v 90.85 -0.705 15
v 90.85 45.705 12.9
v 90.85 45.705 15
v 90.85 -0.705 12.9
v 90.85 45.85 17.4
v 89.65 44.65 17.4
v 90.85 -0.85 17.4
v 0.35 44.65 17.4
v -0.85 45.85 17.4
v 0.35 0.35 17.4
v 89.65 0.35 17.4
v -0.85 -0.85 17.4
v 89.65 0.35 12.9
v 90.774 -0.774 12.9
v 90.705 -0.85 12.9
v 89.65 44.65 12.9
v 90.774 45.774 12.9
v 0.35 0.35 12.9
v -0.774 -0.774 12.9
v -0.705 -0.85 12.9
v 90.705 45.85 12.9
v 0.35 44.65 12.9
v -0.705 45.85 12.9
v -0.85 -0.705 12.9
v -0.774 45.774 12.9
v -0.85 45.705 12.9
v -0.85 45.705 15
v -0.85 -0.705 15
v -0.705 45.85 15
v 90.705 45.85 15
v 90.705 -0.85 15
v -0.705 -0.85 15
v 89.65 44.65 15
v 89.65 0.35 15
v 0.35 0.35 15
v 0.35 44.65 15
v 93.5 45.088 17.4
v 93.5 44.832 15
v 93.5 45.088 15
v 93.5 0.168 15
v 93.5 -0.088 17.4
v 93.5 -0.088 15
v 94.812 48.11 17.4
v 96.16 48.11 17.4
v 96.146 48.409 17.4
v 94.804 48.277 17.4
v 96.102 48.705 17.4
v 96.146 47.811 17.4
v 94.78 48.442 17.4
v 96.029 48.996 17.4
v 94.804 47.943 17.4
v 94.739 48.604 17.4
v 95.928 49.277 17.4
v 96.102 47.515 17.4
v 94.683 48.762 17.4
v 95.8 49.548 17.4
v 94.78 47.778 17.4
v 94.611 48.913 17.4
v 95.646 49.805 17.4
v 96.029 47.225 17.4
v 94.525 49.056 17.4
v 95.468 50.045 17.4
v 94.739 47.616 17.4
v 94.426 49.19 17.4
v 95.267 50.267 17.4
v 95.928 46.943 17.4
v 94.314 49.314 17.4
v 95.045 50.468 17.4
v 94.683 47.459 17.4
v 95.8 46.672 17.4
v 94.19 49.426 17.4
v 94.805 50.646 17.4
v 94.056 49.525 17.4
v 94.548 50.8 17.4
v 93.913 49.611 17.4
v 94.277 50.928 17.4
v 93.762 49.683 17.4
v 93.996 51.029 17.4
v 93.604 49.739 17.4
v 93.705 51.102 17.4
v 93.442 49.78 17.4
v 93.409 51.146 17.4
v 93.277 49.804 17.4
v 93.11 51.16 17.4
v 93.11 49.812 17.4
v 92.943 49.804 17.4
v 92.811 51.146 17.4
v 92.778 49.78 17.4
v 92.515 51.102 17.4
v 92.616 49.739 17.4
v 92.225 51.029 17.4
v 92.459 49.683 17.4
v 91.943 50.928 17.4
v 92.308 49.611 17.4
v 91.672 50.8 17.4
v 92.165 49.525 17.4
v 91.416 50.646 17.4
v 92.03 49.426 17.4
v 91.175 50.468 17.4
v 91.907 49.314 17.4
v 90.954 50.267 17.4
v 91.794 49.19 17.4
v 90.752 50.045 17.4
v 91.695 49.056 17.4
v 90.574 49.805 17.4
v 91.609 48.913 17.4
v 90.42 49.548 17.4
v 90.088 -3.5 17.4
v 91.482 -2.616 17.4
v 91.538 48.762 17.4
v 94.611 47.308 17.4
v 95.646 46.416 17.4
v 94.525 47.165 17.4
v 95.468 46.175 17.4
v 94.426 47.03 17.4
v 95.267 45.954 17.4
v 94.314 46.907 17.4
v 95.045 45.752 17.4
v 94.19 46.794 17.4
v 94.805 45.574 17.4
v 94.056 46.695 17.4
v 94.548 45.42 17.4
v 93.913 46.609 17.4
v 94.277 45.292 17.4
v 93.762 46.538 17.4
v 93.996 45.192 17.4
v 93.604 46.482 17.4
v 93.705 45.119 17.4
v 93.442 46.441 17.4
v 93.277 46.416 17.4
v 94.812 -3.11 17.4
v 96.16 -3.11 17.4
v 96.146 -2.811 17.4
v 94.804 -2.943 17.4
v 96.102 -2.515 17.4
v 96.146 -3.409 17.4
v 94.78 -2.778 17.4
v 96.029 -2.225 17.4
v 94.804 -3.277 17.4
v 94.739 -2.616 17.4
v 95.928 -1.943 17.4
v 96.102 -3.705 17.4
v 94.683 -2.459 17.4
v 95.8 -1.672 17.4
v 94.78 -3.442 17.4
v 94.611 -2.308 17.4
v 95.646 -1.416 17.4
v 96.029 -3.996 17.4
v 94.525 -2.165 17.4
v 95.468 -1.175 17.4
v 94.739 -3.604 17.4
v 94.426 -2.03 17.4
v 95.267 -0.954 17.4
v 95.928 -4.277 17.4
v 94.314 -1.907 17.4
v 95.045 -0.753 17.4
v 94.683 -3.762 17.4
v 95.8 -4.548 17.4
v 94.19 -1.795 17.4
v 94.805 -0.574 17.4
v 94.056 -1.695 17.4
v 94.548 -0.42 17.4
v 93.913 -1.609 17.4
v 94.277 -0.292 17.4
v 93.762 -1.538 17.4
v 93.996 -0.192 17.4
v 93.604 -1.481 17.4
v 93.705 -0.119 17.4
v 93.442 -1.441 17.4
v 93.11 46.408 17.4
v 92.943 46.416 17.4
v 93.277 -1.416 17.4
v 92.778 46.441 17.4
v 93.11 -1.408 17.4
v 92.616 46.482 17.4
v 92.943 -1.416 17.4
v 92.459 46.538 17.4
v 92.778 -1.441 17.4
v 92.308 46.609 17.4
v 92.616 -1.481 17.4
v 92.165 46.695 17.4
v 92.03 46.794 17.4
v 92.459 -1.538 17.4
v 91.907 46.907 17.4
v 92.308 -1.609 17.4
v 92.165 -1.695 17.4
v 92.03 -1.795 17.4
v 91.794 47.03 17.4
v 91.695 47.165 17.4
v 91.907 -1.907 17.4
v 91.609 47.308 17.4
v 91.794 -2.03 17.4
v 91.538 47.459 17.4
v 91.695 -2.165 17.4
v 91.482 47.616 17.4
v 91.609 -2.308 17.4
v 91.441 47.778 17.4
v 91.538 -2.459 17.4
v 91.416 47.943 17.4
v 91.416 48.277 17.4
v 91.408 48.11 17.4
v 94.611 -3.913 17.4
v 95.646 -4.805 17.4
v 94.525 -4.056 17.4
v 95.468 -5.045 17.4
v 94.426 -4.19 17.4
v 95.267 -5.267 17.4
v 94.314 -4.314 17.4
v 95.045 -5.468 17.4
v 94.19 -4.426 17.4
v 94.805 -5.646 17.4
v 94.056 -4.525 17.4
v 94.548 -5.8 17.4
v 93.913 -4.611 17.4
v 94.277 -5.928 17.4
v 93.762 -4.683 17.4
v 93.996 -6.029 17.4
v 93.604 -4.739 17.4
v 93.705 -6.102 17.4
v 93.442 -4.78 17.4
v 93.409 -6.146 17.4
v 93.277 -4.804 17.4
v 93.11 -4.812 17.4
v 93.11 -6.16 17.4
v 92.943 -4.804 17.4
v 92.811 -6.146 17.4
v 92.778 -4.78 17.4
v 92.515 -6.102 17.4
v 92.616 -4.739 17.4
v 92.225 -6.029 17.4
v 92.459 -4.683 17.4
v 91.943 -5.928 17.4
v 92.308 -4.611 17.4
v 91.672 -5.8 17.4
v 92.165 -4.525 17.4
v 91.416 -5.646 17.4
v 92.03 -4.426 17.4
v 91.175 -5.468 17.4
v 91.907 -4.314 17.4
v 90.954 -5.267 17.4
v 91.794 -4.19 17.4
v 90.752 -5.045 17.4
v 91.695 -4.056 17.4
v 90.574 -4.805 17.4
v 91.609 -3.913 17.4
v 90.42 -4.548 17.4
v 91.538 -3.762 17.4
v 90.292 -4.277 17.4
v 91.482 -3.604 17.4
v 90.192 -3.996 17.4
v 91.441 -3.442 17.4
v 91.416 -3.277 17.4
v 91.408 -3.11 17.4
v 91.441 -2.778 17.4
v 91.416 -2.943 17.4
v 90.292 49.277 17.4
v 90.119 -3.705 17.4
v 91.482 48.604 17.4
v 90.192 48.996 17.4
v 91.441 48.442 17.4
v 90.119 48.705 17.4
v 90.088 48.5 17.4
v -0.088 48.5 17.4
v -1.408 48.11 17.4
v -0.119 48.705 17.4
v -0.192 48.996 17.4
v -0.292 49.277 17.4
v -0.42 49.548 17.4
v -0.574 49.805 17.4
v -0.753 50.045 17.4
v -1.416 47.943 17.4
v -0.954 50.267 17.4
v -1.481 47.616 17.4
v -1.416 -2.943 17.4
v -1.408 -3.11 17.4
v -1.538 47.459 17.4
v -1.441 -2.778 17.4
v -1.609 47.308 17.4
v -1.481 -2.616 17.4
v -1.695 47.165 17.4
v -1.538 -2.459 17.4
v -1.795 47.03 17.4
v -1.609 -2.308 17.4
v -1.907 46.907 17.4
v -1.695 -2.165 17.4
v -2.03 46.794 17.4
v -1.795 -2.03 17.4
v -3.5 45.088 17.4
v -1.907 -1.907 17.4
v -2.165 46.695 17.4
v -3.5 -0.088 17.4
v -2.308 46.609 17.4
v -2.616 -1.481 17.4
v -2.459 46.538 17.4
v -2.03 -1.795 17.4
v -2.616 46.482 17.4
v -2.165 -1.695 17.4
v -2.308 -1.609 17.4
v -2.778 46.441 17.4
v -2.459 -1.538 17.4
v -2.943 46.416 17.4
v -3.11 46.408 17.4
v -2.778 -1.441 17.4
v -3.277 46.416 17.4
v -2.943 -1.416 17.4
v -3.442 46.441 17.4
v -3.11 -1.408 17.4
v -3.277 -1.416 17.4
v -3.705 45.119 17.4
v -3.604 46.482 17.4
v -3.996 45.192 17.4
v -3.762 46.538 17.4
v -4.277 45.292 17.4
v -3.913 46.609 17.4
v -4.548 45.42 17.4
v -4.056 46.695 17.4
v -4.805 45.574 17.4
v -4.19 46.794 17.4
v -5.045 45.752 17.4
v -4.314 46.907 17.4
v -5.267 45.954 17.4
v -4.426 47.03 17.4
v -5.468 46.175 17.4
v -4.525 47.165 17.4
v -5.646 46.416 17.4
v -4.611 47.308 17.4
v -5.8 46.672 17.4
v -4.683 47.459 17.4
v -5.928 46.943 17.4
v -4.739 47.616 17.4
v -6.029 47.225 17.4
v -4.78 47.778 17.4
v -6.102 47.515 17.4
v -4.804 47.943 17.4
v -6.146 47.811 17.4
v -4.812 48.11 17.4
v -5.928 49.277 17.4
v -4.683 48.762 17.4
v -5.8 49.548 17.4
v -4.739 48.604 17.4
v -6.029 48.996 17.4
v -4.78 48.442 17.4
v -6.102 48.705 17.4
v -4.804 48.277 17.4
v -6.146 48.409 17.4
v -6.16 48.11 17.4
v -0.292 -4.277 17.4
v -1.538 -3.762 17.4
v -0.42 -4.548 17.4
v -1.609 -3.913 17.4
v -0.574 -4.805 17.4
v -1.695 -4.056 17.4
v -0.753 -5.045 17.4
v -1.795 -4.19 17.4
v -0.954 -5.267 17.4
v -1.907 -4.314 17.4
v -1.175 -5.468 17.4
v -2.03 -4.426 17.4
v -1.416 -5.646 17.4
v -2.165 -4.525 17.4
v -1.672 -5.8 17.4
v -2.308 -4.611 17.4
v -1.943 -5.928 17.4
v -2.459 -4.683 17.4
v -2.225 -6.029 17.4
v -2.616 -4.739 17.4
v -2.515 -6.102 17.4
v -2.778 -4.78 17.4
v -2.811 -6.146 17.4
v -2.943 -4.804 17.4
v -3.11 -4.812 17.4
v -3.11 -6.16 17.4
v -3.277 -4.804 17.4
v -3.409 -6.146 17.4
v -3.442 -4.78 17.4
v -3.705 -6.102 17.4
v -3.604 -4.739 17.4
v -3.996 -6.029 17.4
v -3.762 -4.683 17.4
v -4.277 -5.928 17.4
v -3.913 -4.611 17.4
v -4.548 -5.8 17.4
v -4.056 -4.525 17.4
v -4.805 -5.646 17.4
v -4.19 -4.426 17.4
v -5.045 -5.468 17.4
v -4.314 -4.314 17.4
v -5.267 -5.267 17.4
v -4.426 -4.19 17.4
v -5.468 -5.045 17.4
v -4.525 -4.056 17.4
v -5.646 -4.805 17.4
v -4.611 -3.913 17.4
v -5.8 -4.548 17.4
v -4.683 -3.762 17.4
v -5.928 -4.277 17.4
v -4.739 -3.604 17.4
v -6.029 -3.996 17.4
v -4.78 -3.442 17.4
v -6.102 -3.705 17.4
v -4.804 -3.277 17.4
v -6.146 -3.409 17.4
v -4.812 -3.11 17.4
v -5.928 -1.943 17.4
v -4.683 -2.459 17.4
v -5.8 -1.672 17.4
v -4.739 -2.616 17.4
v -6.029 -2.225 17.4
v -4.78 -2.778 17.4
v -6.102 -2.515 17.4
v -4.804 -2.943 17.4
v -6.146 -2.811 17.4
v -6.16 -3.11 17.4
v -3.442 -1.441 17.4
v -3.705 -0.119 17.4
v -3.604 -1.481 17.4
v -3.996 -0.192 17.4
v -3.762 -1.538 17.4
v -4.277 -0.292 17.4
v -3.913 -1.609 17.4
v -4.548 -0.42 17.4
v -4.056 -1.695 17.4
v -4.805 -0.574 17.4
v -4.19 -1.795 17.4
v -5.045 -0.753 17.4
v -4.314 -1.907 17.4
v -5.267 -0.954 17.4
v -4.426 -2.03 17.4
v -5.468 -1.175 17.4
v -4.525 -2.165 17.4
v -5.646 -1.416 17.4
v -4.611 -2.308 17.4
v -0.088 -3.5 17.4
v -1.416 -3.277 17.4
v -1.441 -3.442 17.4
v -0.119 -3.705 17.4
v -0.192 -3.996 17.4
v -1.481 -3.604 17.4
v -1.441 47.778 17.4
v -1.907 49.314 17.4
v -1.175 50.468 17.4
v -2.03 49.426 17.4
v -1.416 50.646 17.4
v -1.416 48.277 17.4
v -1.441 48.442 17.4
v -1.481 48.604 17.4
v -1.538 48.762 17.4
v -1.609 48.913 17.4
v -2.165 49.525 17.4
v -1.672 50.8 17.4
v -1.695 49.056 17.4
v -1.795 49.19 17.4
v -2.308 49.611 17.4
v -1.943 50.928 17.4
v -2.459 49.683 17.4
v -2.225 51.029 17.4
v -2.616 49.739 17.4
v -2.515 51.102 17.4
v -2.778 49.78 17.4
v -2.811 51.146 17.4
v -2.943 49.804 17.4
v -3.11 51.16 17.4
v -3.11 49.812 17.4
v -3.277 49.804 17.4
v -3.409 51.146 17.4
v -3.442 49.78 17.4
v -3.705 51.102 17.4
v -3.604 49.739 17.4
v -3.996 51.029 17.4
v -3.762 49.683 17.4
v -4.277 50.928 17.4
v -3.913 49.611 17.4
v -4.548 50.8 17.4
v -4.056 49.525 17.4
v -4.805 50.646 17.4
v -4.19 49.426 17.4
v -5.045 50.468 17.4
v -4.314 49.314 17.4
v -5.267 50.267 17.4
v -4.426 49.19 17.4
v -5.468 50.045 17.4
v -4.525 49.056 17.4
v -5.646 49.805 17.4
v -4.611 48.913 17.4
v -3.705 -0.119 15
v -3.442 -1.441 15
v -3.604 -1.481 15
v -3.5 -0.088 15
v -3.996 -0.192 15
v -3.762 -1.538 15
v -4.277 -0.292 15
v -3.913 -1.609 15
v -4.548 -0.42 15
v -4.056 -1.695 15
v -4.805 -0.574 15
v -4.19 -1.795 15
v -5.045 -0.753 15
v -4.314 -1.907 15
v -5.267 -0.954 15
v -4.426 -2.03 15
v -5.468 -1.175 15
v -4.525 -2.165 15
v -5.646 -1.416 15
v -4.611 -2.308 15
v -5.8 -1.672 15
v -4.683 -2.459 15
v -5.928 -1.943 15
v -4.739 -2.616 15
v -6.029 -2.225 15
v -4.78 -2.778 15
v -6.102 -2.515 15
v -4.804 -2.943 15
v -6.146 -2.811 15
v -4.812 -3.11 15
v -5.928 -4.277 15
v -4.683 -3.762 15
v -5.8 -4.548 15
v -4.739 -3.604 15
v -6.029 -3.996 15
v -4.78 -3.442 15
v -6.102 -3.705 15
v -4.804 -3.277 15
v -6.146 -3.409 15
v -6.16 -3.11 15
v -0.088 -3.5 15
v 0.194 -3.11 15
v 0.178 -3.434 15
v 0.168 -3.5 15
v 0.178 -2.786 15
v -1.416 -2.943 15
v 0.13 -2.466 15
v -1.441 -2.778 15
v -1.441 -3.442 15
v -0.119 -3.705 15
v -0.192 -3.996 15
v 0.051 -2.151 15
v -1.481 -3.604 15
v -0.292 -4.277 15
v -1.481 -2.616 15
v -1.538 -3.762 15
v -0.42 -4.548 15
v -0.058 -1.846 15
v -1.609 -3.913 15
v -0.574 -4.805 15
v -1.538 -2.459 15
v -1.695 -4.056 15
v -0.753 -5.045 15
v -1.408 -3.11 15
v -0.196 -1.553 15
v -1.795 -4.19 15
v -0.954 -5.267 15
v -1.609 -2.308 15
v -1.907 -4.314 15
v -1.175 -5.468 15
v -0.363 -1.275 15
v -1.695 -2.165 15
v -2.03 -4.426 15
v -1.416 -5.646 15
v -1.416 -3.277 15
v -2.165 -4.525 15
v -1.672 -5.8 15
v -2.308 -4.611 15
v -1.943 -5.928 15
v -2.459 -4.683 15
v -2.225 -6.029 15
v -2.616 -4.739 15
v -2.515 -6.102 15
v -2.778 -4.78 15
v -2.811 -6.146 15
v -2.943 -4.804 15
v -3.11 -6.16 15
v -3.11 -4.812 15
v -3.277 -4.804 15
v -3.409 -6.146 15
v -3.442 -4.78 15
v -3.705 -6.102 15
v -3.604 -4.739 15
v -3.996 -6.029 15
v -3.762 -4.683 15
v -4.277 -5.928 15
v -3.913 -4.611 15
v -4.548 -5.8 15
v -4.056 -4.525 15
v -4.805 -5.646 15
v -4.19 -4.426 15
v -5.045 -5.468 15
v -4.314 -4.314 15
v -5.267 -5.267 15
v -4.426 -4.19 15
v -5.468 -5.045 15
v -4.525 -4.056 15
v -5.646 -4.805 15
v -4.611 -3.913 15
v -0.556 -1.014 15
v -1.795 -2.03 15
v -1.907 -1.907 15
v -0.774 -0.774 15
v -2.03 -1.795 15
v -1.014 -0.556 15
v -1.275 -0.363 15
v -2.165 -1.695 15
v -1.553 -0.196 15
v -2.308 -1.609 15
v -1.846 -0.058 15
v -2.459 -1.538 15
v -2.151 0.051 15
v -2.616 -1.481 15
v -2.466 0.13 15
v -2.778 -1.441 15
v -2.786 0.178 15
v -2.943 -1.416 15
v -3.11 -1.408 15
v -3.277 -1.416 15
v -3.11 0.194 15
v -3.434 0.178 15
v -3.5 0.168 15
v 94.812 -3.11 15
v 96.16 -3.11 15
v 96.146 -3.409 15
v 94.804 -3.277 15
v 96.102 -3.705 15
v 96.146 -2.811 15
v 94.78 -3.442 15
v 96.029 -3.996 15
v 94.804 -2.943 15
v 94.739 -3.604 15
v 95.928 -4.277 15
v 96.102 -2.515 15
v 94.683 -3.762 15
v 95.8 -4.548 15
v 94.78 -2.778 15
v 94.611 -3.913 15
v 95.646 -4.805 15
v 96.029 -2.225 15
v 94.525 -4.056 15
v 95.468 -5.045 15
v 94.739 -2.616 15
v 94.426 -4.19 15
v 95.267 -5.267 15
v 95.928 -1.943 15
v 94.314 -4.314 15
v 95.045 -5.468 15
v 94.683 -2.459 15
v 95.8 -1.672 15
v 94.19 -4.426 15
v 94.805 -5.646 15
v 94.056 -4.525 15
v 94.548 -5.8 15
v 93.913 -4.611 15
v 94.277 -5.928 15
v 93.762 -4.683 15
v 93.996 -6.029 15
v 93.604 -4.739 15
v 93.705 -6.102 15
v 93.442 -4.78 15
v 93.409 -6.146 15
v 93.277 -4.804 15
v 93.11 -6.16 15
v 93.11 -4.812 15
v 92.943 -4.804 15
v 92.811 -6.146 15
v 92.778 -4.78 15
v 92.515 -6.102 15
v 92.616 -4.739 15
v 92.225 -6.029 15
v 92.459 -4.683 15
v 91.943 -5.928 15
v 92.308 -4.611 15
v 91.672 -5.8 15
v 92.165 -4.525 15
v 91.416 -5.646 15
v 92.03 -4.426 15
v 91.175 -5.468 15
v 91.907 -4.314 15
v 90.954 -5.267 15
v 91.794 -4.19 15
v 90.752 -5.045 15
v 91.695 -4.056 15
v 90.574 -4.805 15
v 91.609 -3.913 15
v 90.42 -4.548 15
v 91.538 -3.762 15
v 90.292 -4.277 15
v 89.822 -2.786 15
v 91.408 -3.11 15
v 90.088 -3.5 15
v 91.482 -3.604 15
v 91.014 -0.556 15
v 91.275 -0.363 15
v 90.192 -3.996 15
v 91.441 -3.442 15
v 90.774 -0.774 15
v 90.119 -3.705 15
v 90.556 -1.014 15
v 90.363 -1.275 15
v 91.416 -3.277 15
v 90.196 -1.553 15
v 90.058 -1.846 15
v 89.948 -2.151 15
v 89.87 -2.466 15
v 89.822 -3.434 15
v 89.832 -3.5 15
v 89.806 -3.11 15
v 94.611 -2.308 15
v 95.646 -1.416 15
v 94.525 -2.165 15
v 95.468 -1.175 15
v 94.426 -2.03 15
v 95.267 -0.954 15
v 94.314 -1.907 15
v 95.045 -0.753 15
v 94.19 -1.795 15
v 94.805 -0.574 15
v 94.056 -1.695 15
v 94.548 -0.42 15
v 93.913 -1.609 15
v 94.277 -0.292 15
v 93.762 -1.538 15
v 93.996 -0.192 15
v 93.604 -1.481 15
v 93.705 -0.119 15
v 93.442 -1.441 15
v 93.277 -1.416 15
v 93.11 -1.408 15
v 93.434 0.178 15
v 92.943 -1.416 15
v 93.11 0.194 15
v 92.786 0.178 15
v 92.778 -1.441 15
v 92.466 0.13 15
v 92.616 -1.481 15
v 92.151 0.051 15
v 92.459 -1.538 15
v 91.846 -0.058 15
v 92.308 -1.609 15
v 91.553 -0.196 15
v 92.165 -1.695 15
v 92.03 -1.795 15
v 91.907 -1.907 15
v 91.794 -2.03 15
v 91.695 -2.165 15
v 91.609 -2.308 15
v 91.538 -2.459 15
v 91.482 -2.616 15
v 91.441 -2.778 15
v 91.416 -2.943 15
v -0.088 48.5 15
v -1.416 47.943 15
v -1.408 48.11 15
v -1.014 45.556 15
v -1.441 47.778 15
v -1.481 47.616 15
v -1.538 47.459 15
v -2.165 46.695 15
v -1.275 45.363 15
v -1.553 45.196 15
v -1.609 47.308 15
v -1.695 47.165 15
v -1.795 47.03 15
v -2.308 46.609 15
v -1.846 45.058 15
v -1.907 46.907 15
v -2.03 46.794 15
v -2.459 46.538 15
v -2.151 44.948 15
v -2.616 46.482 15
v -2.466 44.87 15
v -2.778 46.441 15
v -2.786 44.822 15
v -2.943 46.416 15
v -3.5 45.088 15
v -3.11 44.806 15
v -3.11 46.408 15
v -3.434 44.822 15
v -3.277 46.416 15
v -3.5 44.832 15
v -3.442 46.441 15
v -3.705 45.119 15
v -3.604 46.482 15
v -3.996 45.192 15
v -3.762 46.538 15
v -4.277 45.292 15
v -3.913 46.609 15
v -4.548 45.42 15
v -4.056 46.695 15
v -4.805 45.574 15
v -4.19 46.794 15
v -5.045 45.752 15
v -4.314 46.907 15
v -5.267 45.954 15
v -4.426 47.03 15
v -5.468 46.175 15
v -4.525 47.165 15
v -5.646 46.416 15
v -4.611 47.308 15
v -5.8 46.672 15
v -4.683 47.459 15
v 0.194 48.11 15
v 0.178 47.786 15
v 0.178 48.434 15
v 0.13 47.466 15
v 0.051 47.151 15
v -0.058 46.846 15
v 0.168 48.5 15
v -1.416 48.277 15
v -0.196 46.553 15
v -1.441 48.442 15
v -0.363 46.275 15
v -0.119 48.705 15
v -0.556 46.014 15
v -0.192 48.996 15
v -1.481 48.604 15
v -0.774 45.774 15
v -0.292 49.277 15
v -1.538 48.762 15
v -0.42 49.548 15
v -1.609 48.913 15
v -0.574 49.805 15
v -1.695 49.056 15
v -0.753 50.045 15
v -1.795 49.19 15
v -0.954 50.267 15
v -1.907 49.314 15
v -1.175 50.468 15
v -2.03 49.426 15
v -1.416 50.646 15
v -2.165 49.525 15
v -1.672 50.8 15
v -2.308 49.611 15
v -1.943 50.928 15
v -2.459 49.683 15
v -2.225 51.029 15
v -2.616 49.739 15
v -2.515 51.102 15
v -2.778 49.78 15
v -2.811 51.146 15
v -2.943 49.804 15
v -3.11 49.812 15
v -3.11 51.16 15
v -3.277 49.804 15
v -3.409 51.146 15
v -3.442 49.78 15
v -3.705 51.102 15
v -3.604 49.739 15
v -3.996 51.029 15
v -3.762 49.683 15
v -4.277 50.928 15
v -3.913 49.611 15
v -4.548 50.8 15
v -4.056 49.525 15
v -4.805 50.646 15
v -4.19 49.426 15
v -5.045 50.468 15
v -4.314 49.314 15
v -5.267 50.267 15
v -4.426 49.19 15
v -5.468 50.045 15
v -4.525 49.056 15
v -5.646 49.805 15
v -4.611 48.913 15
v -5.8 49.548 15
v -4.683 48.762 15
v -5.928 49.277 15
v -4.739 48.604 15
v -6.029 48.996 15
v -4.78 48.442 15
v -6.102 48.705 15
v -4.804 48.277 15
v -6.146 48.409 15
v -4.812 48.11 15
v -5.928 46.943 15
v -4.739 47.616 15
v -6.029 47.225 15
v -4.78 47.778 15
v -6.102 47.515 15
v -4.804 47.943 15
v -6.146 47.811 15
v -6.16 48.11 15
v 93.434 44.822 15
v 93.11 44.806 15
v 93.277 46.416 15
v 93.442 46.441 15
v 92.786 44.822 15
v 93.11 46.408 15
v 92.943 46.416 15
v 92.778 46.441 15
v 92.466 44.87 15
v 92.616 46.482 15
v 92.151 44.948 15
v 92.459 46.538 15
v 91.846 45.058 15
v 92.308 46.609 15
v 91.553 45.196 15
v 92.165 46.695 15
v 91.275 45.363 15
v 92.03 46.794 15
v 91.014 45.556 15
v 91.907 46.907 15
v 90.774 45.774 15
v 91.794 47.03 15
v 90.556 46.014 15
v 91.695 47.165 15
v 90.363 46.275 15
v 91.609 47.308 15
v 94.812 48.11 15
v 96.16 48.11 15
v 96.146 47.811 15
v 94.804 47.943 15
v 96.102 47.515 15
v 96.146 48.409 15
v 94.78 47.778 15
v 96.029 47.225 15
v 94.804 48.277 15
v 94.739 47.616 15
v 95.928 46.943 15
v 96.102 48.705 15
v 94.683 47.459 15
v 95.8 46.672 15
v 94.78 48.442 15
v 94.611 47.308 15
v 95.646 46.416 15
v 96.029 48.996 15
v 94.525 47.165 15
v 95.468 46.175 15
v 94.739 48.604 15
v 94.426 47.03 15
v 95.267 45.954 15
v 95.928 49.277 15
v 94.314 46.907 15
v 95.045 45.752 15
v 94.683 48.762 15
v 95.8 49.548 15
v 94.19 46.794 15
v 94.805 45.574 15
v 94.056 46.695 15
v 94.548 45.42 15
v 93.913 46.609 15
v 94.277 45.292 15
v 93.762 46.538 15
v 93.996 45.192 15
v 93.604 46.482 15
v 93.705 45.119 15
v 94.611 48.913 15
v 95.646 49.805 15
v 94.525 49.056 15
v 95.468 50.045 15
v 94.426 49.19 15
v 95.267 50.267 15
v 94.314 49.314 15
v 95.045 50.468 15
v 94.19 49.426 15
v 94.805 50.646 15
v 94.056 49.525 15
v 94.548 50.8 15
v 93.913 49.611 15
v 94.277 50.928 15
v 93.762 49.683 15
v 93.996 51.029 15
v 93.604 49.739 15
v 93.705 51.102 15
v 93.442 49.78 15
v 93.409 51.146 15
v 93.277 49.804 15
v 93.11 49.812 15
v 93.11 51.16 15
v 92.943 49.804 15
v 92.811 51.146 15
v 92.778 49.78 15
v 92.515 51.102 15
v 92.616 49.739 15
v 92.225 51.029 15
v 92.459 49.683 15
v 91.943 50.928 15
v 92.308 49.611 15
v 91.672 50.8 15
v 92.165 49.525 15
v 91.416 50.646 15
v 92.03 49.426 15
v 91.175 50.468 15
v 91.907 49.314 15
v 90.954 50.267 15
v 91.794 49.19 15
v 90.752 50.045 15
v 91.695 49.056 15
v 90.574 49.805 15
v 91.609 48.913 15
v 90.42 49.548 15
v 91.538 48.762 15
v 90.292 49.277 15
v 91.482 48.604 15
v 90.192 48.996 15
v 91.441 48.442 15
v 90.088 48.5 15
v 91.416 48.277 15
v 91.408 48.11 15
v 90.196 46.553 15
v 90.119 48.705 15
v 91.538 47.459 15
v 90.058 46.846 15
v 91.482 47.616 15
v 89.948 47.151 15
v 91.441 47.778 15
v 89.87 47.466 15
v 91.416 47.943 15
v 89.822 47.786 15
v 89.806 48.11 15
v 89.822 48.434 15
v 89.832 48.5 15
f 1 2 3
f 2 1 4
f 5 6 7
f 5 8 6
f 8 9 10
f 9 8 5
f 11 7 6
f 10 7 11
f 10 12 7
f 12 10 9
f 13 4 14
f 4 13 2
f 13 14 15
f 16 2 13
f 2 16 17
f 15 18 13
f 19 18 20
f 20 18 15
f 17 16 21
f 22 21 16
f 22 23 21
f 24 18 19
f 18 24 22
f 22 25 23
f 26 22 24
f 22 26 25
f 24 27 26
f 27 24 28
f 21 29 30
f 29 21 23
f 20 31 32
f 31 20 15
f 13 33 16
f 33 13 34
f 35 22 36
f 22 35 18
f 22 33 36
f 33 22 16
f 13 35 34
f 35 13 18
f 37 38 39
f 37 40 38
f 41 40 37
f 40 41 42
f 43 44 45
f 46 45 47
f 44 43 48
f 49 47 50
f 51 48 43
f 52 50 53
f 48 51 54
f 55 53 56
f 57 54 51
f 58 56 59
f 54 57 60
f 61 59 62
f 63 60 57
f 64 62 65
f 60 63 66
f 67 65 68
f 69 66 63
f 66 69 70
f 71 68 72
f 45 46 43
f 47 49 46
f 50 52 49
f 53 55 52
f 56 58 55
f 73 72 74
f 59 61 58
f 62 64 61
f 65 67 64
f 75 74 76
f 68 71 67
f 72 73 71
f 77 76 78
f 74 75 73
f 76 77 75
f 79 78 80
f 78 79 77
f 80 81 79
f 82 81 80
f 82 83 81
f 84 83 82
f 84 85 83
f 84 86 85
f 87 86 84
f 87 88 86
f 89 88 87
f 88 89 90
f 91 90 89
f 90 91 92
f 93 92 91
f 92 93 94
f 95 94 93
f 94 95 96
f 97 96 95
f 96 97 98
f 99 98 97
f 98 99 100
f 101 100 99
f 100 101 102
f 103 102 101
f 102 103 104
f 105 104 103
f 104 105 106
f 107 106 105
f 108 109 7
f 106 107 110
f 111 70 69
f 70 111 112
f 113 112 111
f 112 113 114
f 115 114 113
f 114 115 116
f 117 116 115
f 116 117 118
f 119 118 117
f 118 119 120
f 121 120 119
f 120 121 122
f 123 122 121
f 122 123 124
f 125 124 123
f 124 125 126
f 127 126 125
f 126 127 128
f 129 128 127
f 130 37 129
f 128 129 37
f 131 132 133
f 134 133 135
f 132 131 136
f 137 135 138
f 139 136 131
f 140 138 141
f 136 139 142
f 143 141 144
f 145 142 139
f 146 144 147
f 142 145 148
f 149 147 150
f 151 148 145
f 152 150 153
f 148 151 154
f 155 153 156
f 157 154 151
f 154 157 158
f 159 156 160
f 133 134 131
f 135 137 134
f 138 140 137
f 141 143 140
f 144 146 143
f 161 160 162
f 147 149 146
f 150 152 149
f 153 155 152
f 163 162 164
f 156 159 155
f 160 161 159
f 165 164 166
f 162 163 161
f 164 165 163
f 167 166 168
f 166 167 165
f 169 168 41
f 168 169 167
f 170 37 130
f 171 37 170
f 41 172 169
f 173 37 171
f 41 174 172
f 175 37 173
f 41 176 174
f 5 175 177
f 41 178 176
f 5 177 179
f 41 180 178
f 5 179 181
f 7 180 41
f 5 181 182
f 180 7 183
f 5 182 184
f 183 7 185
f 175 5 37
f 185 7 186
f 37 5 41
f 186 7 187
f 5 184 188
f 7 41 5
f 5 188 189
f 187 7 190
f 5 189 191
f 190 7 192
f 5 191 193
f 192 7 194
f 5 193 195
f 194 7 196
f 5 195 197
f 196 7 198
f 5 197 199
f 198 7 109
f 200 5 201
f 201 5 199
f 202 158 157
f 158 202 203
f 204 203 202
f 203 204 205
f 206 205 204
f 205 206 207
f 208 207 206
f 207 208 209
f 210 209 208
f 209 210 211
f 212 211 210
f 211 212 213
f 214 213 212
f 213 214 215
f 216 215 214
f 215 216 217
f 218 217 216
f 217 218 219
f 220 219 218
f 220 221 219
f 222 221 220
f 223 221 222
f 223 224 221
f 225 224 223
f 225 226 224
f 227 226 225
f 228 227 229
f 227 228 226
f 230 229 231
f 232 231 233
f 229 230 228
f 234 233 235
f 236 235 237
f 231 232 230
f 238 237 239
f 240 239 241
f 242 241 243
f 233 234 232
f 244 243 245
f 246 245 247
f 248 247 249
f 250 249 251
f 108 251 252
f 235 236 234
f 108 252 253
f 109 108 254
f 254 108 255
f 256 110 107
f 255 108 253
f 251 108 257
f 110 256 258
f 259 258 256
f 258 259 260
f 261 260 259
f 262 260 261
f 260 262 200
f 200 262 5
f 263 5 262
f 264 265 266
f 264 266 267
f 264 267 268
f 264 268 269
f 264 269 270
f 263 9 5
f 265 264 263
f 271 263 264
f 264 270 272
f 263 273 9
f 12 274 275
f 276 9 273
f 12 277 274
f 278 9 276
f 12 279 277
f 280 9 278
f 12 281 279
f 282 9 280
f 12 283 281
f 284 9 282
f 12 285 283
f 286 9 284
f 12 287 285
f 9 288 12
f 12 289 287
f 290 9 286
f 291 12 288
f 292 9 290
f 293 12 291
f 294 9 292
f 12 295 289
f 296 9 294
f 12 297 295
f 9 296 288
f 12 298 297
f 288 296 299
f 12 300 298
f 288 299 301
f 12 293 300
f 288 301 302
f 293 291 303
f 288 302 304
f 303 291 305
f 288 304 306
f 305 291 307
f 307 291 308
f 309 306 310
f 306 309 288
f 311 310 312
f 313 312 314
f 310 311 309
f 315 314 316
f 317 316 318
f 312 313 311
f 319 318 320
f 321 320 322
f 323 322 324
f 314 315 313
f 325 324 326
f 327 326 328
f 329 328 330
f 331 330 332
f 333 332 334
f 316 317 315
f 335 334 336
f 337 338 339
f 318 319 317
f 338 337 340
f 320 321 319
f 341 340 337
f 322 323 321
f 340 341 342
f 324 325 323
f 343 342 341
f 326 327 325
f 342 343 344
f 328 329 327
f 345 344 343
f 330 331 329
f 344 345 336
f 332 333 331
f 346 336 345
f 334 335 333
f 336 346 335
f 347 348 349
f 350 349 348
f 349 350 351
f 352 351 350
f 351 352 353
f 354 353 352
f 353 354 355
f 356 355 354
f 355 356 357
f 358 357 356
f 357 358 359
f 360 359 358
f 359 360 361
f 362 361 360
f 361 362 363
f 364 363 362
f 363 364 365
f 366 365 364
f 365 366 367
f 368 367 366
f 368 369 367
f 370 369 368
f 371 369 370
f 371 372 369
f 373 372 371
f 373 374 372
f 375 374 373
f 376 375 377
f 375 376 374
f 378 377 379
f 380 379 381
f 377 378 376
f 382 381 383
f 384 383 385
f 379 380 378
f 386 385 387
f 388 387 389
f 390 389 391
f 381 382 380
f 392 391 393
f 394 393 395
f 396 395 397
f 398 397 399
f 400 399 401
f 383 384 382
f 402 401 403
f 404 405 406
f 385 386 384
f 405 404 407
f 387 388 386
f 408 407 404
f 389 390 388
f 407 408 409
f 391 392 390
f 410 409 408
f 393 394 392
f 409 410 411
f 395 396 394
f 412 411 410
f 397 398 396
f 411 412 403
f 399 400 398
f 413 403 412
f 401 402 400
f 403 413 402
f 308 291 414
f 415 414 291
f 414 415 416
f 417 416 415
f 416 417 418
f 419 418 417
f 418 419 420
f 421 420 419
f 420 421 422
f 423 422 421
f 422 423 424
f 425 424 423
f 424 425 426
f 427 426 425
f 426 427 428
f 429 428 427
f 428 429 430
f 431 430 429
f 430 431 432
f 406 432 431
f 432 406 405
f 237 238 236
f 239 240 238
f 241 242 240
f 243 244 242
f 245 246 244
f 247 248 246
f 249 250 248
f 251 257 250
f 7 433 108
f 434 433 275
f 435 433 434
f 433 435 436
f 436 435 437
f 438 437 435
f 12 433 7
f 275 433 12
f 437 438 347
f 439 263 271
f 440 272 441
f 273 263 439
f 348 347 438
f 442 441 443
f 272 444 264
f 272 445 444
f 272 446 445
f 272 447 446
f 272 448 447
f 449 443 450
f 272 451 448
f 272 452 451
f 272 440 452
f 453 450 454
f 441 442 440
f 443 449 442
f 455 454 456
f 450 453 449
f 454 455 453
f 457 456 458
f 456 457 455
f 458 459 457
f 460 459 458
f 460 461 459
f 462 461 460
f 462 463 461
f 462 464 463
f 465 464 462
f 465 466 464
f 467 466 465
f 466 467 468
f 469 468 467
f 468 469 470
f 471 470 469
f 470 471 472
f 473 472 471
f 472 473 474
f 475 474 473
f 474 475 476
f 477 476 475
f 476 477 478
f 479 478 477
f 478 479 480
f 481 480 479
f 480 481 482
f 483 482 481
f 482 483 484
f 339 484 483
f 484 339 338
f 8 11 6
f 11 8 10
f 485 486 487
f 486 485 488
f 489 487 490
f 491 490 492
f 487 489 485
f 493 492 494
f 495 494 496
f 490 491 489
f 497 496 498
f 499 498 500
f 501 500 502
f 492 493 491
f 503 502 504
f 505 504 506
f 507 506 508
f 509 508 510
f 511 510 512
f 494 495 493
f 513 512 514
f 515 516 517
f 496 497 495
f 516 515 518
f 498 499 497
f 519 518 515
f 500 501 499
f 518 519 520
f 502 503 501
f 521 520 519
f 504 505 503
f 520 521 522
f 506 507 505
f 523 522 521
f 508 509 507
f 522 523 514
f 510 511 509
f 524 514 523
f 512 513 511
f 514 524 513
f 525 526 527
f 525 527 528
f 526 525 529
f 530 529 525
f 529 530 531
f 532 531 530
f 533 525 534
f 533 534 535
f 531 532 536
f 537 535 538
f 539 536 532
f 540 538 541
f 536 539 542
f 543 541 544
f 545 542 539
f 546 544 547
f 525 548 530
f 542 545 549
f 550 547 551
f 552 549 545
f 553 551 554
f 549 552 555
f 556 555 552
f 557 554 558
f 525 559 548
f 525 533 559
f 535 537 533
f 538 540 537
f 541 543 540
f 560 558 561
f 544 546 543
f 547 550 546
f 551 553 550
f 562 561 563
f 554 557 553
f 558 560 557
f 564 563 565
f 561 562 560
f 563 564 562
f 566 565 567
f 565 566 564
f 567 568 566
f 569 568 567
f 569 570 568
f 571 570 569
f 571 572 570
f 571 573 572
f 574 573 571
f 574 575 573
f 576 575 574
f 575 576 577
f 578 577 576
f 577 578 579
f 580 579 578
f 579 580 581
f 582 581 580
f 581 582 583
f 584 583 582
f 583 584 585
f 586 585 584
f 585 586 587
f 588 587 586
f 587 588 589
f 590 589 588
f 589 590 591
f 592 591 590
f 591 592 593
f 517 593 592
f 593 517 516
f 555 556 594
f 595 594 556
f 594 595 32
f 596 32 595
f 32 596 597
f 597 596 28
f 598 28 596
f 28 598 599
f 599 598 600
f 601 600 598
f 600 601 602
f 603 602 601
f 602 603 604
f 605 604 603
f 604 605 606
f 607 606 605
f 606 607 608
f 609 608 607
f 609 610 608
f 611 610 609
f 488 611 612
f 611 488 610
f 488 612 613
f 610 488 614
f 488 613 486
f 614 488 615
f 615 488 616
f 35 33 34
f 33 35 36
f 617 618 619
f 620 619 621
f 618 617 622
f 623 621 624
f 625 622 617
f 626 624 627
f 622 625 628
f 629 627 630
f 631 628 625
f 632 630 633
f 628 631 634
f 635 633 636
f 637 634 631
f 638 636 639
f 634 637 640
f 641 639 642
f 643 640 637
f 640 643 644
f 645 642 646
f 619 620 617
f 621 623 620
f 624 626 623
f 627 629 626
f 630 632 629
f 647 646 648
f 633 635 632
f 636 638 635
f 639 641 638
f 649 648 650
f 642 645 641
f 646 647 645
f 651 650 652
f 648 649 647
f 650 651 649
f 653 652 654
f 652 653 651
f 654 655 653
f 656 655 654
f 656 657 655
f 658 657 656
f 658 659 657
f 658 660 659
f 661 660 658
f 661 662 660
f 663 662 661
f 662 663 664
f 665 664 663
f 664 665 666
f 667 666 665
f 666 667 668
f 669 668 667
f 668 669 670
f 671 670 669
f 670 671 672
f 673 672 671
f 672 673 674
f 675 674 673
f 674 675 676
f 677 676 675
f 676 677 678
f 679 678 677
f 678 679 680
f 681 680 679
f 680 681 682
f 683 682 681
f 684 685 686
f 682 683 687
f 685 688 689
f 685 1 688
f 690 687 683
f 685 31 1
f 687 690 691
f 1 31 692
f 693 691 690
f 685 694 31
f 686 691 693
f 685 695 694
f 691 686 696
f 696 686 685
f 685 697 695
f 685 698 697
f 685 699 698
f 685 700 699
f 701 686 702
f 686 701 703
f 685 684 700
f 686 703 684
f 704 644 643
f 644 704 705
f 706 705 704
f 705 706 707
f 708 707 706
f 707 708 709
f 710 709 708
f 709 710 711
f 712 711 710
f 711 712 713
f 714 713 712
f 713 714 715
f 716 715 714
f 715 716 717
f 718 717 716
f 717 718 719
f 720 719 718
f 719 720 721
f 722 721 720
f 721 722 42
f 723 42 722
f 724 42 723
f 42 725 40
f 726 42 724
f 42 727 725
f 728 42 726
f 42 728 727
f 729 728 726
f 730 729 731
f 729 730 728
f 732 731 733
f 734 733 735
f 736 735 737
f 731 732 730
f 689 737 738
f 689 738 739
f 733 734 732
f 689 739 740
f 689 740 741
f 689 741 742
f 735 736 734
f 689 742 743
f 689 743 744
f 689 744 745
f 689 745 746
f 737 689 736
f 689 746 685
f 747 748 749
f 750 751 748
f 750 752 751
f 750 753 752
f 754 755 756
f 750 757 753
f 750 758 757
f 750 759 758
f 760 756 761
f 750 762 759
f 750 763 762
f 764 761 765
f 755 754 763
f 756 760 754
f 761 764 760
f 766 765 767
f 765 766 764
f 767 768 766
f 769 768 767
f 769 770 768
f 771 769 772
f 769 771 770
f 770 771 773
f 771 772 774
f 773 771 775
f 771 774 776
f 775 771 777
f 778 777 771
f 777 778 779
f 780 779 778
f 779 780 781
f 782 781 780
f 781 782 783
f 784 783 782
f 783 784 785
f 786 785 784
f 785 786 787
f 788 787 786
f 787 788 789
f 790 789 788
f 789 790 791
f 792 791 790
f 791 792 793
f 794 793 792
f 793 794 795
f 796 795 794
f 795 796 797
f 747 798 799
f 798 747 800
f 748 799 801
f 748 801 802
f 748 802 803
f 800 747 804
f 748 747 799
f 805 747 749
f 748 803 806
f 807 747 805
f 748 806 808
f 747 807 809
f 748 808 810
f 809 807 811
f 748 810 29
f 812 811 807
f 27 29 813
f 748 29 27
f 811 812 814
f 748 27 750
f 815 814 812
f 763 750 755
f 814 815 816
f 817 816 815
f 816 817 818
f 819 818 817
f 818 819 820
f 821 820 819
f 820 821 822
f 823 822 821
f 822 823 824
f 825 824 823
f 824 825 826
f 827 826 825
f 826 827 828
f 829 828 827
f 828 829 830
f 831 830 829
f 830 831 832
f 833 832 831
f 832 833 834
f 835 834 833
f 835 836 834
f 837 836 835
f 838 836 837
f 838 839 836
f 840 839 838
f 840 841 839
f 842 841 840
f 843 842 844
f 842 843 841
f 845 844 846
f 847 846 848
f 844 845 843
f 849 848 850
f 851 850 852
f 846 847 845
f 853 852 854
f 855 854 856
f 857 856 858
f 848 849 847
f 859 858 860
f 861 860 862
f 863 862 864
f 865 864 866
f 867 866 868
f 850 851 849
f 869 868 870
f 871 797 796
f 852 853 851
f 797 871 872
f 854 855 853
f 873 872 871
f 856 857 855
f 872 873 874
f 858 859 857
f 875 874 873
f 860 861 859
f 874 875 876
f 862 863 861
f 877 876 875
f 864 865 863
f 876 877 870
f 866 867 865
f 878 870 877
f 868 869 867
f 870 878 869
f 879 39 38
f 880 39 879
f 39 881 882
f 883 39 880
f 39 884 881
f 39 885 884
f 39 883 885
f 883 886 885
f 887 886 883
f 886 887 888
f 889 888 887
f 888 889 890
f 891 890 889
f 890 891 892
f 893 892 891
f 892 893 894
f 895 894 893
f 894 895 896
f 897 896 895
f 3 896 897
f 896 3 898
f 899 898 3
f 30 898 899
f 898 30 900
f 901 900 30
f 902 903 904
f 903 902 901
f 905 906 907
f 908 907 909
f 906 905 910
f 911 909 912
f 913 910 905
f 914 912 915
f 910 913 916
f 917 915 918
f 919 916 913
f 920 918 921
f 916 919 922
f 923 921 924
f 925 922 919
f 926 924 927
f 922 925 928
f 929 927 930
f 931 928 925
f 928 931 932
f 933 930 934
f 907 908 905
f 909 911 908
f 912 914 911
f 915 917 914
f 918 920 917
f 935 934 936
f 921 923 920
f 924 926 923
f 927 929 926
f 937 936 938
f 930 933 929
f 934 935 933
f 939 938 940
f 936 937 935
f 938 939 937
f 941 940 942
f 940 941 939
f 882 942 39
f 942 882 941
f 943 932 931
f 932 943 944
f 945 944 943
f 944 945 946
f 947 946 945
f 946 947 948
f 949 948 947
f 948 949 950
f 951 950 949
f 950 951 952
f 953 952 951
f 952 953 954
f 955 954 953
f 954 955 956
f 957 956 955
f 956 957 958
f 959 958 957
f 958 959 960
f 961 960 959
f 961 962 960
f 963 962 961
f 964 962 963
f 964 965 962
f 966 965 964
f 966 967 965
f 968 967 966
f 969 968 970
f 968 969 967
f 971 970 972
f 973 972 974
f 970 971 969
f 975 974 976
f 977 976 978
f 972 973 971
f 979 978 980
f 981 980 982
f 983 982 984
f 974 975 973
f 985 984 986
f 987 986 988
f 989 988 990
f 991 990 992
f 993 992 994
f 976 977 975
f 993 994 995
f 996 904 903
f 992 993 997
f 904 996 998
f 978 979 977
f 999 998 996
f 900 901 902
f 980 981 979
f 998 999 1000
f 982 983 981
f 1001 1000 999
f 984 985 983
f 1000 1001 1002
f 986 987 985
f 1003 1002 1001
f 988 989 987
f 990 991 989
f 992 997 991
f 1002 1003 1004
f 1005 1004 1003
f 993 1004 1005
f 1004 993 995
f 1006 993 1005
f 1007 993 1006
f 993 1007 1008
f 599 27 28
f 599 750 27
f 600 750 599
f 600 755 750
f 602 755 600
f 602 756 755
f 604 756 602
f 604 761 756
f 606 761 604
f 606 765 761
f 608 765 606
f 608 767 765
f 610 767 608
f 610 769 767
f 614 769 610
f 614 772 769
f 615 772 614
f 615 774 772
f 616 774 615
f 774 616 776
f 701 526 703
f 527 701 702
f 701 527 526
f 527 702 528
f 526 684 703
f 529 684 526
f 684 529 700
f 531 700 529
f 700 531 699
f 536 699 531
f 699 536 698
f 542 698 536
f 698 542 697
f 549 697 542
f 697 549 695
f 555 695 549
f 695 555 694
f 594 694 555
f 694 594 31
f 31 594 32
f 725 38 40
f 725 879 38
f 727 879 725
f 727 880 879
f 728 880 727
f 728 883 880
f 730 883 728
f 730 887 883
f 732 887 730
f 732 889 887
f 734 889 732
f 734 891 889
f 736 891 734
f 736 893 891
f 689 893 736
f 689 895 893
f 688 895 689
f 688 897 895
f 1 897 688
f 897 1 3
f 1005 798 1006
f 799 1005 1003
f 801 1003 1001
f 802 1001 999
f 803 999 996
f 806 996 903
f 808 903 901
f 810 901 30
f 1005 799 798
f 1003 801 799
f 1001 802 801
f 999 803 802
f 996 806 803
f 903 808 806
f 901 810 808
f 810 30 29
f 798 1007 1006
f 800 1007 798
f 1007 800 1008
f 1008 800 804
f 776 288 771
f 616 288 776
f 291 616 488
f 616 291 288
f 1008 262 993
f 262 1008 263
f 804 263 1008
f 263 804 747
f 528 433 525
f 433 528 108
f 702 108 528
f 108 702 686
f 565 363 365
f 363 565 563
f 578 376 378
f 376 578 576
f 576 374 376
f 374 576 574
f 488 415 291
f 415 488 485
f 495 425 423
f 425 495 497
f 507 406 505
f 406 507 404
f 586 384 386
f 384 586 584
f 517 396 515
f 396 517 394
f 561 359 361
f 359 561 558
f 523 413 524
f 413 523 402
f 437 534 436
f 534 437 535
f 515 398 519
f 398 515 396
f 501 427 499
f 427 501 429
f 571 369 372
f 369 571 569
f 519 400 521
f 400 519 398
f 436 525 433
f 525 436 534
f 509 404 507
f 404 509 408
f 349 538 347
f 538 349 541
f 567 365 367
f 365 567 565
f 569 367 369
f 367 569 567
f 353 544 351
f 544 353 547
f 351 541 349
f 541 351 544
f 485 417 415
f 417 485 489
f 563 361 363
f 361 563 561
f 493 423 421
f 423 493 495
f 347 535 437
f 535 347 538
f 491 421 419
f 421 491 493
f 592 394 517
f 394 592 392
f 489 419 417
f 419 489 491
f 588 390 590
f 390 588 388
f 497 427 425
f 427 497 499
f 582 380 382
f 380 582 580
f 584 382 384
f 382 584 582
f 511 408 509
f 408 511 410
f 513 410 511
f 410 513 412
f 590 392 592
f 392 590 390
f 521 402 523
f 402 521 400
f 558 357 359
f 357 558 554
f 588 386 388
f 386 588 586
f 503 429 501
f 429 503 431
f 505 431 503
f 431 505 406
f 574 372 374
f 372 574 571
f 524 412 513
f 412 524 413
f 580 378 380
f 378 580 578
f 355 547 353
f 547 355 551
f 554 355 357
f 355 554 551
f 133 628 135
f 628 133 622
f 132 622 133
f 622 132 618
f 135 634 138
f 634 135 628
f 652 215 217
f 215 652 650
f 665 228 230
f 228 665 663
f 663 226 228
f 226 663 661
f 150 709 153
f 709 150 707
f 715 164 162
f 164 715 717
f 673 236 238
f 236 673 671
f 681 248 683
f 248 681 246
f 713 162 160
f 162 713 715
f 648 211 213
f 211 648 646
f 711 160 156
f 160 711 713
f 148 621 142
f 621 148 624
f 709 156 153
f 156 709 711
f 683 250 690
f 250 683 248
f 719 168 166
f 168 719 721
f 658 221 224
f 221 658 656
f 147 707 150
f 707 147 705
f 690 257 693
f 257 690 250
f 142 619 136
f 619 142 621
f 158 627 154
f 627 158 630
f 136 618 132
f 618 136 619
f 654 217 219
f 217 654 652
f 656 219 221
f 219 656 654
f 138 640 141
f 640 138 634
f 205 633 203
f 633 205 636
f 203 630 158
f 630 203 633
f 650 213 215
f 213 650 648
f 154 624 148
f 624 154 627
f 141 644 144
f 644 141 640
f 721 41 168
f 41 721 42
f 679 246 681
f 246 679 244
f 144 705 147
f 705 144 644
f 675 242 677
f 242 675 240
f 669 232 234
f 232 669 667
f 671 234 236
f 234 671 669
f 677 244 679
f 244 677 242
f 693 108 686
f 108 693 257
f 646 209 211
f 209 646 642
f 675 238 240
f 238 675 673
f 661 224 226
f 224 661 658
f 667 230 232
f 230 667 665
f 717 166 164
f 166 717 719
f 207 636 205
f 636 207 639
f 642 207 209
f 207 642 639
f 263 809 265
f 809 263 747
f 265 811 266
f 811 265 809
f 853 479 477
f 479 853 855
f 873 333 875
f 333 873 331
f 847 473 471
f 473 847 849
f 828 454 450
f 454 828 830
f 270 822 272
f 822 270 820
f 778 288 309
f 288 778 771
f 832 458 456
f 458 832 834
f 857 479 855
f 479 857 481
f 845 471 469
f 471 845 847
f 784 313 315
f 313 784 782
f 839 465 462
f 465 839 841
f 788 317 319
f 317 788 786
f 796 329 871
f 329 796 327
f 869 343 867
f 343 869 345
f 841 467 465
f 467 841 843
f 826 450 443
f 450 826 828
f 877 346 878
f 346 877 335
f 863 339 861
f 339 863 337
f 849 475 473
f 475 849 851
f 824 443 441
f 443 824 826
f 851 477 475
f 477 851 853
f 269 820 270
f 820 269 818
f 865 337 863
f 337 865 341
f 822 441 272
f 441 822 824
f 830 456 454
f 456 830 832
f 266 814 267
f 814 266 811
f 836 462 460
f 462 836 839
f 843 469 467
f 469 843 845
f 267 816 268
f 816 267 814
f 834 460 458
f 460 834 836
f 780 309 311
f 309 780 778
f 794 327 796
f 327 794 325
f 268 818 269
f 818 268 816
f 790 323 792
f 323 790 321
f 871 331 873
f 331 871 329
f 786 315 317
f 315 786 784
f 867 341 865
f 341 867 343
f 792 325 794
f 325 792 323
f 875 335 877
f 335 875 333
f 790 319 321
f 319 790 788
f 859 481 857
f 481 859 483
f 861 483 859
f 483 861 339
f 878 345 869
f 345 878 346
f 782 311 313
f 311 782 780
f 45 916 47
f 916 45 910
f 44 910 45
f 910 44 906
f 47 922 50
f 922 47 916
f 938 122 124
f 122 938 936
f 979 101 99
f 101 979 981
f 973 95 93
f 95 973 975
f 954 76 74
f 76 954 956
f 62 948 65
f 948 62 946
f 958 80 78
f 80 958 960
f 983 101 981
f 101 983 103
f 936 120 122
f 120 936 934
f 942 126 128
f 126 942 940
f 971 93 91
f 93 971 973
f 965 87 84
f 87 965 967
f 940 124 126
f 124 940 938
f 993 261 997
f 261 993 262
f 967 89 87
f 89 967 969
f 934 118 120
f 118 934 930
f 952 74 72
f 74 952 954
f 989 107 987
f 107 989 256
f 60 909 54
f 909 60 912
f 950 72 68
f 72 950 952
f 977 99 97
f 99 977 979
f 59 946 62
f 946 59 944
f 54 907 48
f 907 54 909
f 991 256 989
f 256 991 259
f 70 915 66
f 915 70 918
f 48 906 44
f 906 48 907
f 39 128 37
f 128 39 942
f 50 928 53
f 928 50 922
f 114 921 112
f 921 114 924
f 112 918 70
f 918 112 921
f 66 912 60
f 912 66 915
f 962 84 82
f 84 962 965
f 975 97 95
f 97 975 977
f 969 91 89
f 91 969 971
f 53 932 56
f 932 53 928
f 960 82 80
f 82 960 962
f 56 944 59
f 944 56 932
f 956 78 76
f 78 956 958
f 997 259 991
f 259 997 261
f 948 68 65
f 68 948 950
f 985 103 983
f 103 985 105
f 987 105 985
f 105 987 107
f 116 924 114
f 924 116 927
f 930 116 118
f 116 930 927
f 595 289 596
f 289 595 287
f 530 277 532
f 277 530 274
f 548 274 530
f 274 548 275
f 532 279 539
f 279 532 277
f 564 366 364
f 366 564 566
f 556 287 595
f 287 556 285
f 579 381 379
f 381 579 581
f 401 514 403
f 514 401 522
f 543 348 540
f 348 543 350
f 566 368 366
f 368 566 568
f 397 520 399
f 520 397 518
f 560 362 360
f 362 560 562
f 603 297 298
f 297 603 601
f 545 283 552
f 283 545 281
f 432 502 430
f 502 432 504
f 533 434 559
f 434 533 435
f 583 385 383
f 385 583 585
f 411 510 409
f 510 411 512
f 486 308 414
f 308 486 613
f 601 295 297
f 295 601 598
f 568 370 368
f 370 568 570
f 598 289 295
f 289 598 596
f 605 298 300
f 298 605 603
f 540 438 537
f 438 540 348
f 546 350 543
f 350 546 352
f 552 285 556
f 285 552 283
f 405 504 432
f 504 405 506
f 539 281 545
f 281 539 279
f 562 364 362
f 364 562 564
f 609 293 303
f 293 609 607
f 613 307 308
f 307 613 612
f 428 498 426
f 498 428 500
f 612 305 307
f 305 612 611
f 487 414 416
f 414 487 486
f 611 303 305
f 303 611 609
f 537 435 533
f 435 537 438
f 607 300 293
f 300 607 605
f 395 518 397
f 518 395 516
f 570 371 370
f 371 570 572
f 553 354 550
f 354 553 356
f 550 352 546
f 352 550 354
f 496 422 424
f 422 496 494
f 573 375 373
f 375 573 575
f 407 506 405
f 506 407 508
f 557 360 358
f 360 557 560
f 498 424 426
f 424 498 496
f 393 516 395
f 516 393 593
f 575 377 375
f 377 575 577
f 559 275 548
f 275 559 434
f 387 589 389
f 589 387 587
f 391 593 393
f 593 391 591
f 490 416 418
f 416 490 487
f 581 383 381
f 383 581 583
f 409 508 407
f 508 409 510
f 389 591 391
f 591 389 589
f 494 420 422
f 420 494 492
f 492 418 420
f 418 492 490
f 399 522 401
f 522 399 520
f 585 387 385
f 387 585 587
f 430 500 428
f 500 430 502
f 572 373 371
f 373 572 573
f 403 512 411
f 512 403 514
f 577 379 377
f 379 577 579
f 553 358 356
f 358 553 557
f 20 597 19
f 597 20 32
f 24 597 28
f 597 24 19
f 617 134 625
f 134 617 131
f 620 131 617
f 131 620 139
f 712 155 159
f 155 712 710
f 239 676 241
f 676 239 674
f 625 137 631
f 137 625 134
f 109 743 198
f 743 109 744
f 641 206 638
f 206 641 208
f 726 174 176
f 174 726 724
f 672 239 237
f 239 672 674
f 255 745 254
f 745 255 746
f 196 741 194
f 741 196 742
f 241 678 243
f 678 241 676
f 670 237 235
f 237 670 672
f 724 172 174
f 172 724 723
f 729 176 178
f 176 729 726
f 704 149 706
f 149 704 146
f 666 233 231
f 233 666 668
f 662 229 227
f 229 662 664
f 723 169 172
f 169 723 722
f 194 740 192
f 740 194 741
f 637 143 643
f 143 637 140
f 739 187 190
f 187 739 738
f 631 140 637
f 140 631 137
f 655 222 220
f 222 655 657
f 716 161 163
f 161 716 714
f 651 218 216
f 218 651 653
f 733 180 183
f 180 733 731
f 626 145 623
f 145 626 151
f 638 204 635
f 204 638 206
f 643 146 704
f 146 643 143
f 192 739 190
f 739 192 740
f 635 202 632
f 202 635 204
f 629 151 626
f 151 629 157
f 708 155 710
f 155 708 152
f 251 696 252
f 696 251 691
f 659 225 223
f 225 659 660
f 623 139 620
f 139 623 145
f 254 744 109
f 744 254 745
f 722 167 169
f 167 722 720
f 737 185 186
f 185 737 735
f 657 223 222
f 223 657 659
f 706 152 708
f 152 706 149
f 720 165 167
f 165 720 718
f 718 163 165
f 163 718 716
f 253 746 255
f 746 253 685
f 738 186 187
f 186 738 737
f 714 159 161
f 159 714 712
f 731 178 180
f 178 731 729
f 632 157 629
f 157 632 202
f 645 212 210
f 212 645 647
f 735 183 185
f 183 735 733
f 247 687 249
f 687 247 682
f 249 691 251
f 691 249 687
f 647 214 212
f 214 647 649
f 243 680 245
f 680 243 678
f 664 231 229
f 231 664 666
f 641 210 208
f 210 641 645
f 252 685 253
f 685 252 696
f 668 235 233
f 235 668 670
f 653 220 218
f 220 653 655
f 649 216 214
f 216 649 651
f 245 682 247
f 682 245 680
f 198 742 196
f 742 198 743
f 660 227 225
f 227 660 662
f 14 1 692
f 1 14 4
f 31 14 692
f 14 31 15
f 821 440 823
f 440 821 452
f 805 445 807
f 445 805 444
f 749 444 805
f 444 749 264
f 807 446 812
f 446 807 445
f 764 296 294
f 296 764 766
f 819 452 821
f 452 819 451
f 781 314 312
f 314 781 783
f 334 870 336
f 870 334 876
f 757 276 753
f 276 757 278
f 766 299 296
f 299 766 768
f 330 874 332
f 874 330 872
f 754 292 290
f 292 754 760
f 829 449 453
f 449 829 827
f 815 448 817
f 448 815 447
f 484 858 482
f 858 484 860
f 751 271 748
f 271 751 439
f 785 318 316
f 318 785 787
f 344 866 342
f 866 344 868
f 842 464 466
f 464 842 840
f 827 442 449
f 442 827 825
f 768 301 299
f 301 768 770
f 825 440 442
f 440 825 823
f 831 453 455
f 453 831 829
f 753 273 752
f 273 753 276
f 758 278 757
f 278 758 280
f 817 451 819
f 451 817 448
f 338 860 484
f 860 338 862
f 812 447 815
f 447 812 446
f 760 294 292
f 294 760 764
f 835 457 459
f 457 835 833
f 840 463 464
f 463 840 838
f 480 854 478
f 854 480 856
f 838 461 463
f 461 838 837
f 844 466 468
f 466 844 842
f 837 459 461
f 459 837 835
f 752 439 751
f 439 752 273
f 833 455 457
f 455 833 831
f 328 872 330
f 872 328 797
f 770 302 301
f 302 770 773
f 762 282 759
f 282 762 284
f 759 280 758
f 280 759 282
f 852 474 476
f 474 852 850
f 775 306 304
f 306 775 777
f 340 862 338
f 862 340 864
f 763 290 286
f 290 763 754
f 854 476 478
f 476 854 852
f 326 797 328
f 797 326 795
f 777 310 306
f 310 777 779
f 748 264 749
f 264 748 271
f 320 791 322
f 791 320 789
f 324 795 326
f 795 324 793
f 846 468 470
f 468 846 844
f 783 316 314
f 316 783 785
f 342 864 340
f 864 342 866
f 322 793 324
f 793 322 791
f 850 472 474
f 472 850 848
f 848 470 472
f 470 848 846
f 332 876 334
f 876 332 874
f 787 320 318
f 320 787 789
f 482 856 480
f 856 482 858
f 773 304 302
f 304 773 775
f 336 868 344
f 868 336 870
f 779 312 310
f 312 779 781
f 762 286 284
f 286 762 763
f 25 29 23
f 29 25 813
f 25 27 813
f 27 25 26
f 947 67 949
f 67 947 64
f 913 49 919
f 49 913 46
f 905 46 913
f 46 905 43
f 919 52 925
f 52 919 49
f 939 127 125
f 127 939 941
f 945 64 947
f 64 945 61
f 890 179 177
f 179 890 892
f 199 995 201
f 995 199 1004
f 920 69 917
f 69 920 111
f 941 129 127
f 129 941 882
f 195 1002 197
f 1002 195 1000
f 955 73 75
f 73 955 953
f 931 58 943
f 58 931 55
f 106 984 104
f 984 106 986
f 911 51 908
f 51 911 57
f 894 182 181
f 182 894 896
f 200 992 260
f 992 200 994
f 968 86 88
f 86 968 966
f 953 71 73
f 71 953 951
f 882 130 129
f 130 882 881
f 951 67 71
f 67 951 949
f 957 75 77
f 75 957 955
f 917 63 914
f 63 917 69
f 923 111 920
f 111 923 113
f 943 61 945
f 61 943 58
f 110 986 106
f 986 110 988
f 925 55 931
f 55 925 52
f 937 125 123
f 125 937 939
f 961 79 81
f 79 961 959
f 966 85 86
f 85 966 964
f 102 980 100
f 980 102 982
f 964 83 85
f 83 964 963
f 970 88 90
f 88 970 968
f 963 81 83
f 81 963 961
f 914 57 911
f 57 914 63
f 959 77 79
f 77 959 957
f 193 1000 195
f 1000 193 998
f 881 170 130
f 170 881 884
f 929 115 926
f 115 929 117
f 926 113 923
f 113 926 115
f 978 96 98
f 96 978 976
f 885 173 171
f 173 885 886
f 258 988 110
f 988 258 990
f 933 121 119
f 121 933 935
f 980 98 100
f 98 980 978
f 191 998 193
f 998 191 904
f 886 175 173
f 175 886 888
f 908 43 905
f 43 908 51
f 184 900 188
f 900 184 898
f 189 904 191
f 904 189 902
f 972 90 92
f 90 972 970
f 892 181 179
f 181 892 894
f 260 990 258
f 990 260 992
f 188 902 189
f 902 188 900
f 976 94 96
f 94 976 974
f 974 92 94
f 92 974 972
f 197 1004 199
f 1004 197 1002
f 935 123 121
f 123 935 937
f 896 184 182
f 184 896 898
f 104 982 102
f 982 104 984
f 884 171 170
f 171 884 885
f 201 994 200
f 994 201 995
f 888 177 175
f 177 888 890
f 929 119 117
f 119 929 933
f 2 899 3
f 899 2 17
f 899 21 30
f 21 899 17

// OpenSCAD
// body lid
difference() {
  union() {
    // body lid (lid_plate)
    multmatrix([[1, 0, 0, 45], [0, 1, 0, 22.5], [0, 0, 1, 15], [0, 0, 0, 1]]) translate([-48.5, -26, 0]) cube([97, 52, 2.4]);
    // add lid_lip (lip)
    multmatrix([[1, 0, 0, 45], [0, 1, 0, 22.5], [0, 0, 1, 12.9], [0, 0, 0, 1]]) difference() { translate([-45.85, -23.35, 0]) cube([91.7, 46.7, 4.5]); translate([0, 0, -1]) translate([-44.65, -22.15, 0]) cube([89.3, 44.3, 6.5]); }
    // add boss_1_pad (pad)
    multmatrix([[1, 0, 0, -3.110229], [0, 1, 0, -3.110229], [0, 0, 1, 15], [0, 0, 0, 1]]) cylinder(h=2.4, d=6.1, $fn=64);
    // add boss_2_pad (pad)
    multmatrix([[1, 0, 0, 93.110229], [0, 1, 0, -3.110229], [0, 0, 1, 15], [0, 0, 0, 1]]) cylinder(h=2.4, d=6.1, $fn=64);
    // add boss_3_pad (pad)
    multmatrix([[1, 0, 0, -3.110229], [0, 1, 0, 48.110229], [0, 0, 1, 15], [0, 0, 0, 1]]) cylinder(h=2.4, d=6.1, $fn=64);
    // add boss_4_pad (pad)
    multmatrix([[1, 0, 0, 93.110229], [0, 1, 0, 48.110229], [0, 0, 1, 15], [0, 0, 0, 1]]) cylinder(h=2.4, d=6.1, $fn=64);
  }
  // cut boss_1_lid_hole (screw_hole)
  multmatrix([[1, 0, 0, -3.110229], [0, 1, 0, -3.110229], [0, 0, 1, 14], [0, 0, 0, 1]]) cylinder(h=4.4, d=3.4041, $fn=64);
  // cut boss_1_lip_notch (lip_notch)
  multmatrix([[1, 0, 0, -3.110229], [0, 1, 0, -3.110229], [0, 0, 1, 11.9], [0, 0, 0, 1]]) cylinder(h=3.1, d=6.60796, $fn=64);
  // cut boss_2_lid_hole (screw_hole)
  multmatrix([[1, 0, 0, 93.110229], [0, 1, 0, -3.110229], [0, 0, 1, 14], [0, 0, 0, 1]]) cylinder(h=4.4, d=3.4041, $fn=64);
  // cut boss_2_lip_notch (lip_notch)
  multmatrix([[1, 0, 0, 93.110229], [0, 1, 0, -3.110229], [0, 0, 1, 11.9], [0, 0, 0, 1]]) cylinder(h=3.1, d=6.60796, $fn=64);
  // cut boss_3_lid_hole (screw_hole)
  multmatrix([[1, 0, 0, -3.110229], [0, 1, 0, 48.110229], [0, 0, 1, 14], [0, 0, 0, 1]]) cylinder(h=4.4, d=3.4041, $fn=64);
  // cut boss_3_lip_notch (lip_notch)
  multmatrix([[1, 0, 0, -3.110229], [0, 1, 0, 48.110229], [0, 0, 1, 11.9], [0, 0, 0, 1]]) cylinder(h=3.1, d=6.60796, $fn=64);
  // cut boss_4_lid_hole (screw_hole)
  multmatrix([[1, 0, 0, 93.110229], [0, 1, 0, 48.110229], [0, 0, 1, 14], [0, 0, 0, 1]]) cylinder(h=4.4, d=3.4041, $fn=64);
  // cut boss_4_lip_notch (lip_notch)
  multmatrix([[1, 0, 0, 93.110229], [0, 1, 0, 48.110229], [0, 0, 1, 11.9], [0, 0, 0, 1]]) cylinder(h=3.1, d=6.60796, $fn=64);
}
